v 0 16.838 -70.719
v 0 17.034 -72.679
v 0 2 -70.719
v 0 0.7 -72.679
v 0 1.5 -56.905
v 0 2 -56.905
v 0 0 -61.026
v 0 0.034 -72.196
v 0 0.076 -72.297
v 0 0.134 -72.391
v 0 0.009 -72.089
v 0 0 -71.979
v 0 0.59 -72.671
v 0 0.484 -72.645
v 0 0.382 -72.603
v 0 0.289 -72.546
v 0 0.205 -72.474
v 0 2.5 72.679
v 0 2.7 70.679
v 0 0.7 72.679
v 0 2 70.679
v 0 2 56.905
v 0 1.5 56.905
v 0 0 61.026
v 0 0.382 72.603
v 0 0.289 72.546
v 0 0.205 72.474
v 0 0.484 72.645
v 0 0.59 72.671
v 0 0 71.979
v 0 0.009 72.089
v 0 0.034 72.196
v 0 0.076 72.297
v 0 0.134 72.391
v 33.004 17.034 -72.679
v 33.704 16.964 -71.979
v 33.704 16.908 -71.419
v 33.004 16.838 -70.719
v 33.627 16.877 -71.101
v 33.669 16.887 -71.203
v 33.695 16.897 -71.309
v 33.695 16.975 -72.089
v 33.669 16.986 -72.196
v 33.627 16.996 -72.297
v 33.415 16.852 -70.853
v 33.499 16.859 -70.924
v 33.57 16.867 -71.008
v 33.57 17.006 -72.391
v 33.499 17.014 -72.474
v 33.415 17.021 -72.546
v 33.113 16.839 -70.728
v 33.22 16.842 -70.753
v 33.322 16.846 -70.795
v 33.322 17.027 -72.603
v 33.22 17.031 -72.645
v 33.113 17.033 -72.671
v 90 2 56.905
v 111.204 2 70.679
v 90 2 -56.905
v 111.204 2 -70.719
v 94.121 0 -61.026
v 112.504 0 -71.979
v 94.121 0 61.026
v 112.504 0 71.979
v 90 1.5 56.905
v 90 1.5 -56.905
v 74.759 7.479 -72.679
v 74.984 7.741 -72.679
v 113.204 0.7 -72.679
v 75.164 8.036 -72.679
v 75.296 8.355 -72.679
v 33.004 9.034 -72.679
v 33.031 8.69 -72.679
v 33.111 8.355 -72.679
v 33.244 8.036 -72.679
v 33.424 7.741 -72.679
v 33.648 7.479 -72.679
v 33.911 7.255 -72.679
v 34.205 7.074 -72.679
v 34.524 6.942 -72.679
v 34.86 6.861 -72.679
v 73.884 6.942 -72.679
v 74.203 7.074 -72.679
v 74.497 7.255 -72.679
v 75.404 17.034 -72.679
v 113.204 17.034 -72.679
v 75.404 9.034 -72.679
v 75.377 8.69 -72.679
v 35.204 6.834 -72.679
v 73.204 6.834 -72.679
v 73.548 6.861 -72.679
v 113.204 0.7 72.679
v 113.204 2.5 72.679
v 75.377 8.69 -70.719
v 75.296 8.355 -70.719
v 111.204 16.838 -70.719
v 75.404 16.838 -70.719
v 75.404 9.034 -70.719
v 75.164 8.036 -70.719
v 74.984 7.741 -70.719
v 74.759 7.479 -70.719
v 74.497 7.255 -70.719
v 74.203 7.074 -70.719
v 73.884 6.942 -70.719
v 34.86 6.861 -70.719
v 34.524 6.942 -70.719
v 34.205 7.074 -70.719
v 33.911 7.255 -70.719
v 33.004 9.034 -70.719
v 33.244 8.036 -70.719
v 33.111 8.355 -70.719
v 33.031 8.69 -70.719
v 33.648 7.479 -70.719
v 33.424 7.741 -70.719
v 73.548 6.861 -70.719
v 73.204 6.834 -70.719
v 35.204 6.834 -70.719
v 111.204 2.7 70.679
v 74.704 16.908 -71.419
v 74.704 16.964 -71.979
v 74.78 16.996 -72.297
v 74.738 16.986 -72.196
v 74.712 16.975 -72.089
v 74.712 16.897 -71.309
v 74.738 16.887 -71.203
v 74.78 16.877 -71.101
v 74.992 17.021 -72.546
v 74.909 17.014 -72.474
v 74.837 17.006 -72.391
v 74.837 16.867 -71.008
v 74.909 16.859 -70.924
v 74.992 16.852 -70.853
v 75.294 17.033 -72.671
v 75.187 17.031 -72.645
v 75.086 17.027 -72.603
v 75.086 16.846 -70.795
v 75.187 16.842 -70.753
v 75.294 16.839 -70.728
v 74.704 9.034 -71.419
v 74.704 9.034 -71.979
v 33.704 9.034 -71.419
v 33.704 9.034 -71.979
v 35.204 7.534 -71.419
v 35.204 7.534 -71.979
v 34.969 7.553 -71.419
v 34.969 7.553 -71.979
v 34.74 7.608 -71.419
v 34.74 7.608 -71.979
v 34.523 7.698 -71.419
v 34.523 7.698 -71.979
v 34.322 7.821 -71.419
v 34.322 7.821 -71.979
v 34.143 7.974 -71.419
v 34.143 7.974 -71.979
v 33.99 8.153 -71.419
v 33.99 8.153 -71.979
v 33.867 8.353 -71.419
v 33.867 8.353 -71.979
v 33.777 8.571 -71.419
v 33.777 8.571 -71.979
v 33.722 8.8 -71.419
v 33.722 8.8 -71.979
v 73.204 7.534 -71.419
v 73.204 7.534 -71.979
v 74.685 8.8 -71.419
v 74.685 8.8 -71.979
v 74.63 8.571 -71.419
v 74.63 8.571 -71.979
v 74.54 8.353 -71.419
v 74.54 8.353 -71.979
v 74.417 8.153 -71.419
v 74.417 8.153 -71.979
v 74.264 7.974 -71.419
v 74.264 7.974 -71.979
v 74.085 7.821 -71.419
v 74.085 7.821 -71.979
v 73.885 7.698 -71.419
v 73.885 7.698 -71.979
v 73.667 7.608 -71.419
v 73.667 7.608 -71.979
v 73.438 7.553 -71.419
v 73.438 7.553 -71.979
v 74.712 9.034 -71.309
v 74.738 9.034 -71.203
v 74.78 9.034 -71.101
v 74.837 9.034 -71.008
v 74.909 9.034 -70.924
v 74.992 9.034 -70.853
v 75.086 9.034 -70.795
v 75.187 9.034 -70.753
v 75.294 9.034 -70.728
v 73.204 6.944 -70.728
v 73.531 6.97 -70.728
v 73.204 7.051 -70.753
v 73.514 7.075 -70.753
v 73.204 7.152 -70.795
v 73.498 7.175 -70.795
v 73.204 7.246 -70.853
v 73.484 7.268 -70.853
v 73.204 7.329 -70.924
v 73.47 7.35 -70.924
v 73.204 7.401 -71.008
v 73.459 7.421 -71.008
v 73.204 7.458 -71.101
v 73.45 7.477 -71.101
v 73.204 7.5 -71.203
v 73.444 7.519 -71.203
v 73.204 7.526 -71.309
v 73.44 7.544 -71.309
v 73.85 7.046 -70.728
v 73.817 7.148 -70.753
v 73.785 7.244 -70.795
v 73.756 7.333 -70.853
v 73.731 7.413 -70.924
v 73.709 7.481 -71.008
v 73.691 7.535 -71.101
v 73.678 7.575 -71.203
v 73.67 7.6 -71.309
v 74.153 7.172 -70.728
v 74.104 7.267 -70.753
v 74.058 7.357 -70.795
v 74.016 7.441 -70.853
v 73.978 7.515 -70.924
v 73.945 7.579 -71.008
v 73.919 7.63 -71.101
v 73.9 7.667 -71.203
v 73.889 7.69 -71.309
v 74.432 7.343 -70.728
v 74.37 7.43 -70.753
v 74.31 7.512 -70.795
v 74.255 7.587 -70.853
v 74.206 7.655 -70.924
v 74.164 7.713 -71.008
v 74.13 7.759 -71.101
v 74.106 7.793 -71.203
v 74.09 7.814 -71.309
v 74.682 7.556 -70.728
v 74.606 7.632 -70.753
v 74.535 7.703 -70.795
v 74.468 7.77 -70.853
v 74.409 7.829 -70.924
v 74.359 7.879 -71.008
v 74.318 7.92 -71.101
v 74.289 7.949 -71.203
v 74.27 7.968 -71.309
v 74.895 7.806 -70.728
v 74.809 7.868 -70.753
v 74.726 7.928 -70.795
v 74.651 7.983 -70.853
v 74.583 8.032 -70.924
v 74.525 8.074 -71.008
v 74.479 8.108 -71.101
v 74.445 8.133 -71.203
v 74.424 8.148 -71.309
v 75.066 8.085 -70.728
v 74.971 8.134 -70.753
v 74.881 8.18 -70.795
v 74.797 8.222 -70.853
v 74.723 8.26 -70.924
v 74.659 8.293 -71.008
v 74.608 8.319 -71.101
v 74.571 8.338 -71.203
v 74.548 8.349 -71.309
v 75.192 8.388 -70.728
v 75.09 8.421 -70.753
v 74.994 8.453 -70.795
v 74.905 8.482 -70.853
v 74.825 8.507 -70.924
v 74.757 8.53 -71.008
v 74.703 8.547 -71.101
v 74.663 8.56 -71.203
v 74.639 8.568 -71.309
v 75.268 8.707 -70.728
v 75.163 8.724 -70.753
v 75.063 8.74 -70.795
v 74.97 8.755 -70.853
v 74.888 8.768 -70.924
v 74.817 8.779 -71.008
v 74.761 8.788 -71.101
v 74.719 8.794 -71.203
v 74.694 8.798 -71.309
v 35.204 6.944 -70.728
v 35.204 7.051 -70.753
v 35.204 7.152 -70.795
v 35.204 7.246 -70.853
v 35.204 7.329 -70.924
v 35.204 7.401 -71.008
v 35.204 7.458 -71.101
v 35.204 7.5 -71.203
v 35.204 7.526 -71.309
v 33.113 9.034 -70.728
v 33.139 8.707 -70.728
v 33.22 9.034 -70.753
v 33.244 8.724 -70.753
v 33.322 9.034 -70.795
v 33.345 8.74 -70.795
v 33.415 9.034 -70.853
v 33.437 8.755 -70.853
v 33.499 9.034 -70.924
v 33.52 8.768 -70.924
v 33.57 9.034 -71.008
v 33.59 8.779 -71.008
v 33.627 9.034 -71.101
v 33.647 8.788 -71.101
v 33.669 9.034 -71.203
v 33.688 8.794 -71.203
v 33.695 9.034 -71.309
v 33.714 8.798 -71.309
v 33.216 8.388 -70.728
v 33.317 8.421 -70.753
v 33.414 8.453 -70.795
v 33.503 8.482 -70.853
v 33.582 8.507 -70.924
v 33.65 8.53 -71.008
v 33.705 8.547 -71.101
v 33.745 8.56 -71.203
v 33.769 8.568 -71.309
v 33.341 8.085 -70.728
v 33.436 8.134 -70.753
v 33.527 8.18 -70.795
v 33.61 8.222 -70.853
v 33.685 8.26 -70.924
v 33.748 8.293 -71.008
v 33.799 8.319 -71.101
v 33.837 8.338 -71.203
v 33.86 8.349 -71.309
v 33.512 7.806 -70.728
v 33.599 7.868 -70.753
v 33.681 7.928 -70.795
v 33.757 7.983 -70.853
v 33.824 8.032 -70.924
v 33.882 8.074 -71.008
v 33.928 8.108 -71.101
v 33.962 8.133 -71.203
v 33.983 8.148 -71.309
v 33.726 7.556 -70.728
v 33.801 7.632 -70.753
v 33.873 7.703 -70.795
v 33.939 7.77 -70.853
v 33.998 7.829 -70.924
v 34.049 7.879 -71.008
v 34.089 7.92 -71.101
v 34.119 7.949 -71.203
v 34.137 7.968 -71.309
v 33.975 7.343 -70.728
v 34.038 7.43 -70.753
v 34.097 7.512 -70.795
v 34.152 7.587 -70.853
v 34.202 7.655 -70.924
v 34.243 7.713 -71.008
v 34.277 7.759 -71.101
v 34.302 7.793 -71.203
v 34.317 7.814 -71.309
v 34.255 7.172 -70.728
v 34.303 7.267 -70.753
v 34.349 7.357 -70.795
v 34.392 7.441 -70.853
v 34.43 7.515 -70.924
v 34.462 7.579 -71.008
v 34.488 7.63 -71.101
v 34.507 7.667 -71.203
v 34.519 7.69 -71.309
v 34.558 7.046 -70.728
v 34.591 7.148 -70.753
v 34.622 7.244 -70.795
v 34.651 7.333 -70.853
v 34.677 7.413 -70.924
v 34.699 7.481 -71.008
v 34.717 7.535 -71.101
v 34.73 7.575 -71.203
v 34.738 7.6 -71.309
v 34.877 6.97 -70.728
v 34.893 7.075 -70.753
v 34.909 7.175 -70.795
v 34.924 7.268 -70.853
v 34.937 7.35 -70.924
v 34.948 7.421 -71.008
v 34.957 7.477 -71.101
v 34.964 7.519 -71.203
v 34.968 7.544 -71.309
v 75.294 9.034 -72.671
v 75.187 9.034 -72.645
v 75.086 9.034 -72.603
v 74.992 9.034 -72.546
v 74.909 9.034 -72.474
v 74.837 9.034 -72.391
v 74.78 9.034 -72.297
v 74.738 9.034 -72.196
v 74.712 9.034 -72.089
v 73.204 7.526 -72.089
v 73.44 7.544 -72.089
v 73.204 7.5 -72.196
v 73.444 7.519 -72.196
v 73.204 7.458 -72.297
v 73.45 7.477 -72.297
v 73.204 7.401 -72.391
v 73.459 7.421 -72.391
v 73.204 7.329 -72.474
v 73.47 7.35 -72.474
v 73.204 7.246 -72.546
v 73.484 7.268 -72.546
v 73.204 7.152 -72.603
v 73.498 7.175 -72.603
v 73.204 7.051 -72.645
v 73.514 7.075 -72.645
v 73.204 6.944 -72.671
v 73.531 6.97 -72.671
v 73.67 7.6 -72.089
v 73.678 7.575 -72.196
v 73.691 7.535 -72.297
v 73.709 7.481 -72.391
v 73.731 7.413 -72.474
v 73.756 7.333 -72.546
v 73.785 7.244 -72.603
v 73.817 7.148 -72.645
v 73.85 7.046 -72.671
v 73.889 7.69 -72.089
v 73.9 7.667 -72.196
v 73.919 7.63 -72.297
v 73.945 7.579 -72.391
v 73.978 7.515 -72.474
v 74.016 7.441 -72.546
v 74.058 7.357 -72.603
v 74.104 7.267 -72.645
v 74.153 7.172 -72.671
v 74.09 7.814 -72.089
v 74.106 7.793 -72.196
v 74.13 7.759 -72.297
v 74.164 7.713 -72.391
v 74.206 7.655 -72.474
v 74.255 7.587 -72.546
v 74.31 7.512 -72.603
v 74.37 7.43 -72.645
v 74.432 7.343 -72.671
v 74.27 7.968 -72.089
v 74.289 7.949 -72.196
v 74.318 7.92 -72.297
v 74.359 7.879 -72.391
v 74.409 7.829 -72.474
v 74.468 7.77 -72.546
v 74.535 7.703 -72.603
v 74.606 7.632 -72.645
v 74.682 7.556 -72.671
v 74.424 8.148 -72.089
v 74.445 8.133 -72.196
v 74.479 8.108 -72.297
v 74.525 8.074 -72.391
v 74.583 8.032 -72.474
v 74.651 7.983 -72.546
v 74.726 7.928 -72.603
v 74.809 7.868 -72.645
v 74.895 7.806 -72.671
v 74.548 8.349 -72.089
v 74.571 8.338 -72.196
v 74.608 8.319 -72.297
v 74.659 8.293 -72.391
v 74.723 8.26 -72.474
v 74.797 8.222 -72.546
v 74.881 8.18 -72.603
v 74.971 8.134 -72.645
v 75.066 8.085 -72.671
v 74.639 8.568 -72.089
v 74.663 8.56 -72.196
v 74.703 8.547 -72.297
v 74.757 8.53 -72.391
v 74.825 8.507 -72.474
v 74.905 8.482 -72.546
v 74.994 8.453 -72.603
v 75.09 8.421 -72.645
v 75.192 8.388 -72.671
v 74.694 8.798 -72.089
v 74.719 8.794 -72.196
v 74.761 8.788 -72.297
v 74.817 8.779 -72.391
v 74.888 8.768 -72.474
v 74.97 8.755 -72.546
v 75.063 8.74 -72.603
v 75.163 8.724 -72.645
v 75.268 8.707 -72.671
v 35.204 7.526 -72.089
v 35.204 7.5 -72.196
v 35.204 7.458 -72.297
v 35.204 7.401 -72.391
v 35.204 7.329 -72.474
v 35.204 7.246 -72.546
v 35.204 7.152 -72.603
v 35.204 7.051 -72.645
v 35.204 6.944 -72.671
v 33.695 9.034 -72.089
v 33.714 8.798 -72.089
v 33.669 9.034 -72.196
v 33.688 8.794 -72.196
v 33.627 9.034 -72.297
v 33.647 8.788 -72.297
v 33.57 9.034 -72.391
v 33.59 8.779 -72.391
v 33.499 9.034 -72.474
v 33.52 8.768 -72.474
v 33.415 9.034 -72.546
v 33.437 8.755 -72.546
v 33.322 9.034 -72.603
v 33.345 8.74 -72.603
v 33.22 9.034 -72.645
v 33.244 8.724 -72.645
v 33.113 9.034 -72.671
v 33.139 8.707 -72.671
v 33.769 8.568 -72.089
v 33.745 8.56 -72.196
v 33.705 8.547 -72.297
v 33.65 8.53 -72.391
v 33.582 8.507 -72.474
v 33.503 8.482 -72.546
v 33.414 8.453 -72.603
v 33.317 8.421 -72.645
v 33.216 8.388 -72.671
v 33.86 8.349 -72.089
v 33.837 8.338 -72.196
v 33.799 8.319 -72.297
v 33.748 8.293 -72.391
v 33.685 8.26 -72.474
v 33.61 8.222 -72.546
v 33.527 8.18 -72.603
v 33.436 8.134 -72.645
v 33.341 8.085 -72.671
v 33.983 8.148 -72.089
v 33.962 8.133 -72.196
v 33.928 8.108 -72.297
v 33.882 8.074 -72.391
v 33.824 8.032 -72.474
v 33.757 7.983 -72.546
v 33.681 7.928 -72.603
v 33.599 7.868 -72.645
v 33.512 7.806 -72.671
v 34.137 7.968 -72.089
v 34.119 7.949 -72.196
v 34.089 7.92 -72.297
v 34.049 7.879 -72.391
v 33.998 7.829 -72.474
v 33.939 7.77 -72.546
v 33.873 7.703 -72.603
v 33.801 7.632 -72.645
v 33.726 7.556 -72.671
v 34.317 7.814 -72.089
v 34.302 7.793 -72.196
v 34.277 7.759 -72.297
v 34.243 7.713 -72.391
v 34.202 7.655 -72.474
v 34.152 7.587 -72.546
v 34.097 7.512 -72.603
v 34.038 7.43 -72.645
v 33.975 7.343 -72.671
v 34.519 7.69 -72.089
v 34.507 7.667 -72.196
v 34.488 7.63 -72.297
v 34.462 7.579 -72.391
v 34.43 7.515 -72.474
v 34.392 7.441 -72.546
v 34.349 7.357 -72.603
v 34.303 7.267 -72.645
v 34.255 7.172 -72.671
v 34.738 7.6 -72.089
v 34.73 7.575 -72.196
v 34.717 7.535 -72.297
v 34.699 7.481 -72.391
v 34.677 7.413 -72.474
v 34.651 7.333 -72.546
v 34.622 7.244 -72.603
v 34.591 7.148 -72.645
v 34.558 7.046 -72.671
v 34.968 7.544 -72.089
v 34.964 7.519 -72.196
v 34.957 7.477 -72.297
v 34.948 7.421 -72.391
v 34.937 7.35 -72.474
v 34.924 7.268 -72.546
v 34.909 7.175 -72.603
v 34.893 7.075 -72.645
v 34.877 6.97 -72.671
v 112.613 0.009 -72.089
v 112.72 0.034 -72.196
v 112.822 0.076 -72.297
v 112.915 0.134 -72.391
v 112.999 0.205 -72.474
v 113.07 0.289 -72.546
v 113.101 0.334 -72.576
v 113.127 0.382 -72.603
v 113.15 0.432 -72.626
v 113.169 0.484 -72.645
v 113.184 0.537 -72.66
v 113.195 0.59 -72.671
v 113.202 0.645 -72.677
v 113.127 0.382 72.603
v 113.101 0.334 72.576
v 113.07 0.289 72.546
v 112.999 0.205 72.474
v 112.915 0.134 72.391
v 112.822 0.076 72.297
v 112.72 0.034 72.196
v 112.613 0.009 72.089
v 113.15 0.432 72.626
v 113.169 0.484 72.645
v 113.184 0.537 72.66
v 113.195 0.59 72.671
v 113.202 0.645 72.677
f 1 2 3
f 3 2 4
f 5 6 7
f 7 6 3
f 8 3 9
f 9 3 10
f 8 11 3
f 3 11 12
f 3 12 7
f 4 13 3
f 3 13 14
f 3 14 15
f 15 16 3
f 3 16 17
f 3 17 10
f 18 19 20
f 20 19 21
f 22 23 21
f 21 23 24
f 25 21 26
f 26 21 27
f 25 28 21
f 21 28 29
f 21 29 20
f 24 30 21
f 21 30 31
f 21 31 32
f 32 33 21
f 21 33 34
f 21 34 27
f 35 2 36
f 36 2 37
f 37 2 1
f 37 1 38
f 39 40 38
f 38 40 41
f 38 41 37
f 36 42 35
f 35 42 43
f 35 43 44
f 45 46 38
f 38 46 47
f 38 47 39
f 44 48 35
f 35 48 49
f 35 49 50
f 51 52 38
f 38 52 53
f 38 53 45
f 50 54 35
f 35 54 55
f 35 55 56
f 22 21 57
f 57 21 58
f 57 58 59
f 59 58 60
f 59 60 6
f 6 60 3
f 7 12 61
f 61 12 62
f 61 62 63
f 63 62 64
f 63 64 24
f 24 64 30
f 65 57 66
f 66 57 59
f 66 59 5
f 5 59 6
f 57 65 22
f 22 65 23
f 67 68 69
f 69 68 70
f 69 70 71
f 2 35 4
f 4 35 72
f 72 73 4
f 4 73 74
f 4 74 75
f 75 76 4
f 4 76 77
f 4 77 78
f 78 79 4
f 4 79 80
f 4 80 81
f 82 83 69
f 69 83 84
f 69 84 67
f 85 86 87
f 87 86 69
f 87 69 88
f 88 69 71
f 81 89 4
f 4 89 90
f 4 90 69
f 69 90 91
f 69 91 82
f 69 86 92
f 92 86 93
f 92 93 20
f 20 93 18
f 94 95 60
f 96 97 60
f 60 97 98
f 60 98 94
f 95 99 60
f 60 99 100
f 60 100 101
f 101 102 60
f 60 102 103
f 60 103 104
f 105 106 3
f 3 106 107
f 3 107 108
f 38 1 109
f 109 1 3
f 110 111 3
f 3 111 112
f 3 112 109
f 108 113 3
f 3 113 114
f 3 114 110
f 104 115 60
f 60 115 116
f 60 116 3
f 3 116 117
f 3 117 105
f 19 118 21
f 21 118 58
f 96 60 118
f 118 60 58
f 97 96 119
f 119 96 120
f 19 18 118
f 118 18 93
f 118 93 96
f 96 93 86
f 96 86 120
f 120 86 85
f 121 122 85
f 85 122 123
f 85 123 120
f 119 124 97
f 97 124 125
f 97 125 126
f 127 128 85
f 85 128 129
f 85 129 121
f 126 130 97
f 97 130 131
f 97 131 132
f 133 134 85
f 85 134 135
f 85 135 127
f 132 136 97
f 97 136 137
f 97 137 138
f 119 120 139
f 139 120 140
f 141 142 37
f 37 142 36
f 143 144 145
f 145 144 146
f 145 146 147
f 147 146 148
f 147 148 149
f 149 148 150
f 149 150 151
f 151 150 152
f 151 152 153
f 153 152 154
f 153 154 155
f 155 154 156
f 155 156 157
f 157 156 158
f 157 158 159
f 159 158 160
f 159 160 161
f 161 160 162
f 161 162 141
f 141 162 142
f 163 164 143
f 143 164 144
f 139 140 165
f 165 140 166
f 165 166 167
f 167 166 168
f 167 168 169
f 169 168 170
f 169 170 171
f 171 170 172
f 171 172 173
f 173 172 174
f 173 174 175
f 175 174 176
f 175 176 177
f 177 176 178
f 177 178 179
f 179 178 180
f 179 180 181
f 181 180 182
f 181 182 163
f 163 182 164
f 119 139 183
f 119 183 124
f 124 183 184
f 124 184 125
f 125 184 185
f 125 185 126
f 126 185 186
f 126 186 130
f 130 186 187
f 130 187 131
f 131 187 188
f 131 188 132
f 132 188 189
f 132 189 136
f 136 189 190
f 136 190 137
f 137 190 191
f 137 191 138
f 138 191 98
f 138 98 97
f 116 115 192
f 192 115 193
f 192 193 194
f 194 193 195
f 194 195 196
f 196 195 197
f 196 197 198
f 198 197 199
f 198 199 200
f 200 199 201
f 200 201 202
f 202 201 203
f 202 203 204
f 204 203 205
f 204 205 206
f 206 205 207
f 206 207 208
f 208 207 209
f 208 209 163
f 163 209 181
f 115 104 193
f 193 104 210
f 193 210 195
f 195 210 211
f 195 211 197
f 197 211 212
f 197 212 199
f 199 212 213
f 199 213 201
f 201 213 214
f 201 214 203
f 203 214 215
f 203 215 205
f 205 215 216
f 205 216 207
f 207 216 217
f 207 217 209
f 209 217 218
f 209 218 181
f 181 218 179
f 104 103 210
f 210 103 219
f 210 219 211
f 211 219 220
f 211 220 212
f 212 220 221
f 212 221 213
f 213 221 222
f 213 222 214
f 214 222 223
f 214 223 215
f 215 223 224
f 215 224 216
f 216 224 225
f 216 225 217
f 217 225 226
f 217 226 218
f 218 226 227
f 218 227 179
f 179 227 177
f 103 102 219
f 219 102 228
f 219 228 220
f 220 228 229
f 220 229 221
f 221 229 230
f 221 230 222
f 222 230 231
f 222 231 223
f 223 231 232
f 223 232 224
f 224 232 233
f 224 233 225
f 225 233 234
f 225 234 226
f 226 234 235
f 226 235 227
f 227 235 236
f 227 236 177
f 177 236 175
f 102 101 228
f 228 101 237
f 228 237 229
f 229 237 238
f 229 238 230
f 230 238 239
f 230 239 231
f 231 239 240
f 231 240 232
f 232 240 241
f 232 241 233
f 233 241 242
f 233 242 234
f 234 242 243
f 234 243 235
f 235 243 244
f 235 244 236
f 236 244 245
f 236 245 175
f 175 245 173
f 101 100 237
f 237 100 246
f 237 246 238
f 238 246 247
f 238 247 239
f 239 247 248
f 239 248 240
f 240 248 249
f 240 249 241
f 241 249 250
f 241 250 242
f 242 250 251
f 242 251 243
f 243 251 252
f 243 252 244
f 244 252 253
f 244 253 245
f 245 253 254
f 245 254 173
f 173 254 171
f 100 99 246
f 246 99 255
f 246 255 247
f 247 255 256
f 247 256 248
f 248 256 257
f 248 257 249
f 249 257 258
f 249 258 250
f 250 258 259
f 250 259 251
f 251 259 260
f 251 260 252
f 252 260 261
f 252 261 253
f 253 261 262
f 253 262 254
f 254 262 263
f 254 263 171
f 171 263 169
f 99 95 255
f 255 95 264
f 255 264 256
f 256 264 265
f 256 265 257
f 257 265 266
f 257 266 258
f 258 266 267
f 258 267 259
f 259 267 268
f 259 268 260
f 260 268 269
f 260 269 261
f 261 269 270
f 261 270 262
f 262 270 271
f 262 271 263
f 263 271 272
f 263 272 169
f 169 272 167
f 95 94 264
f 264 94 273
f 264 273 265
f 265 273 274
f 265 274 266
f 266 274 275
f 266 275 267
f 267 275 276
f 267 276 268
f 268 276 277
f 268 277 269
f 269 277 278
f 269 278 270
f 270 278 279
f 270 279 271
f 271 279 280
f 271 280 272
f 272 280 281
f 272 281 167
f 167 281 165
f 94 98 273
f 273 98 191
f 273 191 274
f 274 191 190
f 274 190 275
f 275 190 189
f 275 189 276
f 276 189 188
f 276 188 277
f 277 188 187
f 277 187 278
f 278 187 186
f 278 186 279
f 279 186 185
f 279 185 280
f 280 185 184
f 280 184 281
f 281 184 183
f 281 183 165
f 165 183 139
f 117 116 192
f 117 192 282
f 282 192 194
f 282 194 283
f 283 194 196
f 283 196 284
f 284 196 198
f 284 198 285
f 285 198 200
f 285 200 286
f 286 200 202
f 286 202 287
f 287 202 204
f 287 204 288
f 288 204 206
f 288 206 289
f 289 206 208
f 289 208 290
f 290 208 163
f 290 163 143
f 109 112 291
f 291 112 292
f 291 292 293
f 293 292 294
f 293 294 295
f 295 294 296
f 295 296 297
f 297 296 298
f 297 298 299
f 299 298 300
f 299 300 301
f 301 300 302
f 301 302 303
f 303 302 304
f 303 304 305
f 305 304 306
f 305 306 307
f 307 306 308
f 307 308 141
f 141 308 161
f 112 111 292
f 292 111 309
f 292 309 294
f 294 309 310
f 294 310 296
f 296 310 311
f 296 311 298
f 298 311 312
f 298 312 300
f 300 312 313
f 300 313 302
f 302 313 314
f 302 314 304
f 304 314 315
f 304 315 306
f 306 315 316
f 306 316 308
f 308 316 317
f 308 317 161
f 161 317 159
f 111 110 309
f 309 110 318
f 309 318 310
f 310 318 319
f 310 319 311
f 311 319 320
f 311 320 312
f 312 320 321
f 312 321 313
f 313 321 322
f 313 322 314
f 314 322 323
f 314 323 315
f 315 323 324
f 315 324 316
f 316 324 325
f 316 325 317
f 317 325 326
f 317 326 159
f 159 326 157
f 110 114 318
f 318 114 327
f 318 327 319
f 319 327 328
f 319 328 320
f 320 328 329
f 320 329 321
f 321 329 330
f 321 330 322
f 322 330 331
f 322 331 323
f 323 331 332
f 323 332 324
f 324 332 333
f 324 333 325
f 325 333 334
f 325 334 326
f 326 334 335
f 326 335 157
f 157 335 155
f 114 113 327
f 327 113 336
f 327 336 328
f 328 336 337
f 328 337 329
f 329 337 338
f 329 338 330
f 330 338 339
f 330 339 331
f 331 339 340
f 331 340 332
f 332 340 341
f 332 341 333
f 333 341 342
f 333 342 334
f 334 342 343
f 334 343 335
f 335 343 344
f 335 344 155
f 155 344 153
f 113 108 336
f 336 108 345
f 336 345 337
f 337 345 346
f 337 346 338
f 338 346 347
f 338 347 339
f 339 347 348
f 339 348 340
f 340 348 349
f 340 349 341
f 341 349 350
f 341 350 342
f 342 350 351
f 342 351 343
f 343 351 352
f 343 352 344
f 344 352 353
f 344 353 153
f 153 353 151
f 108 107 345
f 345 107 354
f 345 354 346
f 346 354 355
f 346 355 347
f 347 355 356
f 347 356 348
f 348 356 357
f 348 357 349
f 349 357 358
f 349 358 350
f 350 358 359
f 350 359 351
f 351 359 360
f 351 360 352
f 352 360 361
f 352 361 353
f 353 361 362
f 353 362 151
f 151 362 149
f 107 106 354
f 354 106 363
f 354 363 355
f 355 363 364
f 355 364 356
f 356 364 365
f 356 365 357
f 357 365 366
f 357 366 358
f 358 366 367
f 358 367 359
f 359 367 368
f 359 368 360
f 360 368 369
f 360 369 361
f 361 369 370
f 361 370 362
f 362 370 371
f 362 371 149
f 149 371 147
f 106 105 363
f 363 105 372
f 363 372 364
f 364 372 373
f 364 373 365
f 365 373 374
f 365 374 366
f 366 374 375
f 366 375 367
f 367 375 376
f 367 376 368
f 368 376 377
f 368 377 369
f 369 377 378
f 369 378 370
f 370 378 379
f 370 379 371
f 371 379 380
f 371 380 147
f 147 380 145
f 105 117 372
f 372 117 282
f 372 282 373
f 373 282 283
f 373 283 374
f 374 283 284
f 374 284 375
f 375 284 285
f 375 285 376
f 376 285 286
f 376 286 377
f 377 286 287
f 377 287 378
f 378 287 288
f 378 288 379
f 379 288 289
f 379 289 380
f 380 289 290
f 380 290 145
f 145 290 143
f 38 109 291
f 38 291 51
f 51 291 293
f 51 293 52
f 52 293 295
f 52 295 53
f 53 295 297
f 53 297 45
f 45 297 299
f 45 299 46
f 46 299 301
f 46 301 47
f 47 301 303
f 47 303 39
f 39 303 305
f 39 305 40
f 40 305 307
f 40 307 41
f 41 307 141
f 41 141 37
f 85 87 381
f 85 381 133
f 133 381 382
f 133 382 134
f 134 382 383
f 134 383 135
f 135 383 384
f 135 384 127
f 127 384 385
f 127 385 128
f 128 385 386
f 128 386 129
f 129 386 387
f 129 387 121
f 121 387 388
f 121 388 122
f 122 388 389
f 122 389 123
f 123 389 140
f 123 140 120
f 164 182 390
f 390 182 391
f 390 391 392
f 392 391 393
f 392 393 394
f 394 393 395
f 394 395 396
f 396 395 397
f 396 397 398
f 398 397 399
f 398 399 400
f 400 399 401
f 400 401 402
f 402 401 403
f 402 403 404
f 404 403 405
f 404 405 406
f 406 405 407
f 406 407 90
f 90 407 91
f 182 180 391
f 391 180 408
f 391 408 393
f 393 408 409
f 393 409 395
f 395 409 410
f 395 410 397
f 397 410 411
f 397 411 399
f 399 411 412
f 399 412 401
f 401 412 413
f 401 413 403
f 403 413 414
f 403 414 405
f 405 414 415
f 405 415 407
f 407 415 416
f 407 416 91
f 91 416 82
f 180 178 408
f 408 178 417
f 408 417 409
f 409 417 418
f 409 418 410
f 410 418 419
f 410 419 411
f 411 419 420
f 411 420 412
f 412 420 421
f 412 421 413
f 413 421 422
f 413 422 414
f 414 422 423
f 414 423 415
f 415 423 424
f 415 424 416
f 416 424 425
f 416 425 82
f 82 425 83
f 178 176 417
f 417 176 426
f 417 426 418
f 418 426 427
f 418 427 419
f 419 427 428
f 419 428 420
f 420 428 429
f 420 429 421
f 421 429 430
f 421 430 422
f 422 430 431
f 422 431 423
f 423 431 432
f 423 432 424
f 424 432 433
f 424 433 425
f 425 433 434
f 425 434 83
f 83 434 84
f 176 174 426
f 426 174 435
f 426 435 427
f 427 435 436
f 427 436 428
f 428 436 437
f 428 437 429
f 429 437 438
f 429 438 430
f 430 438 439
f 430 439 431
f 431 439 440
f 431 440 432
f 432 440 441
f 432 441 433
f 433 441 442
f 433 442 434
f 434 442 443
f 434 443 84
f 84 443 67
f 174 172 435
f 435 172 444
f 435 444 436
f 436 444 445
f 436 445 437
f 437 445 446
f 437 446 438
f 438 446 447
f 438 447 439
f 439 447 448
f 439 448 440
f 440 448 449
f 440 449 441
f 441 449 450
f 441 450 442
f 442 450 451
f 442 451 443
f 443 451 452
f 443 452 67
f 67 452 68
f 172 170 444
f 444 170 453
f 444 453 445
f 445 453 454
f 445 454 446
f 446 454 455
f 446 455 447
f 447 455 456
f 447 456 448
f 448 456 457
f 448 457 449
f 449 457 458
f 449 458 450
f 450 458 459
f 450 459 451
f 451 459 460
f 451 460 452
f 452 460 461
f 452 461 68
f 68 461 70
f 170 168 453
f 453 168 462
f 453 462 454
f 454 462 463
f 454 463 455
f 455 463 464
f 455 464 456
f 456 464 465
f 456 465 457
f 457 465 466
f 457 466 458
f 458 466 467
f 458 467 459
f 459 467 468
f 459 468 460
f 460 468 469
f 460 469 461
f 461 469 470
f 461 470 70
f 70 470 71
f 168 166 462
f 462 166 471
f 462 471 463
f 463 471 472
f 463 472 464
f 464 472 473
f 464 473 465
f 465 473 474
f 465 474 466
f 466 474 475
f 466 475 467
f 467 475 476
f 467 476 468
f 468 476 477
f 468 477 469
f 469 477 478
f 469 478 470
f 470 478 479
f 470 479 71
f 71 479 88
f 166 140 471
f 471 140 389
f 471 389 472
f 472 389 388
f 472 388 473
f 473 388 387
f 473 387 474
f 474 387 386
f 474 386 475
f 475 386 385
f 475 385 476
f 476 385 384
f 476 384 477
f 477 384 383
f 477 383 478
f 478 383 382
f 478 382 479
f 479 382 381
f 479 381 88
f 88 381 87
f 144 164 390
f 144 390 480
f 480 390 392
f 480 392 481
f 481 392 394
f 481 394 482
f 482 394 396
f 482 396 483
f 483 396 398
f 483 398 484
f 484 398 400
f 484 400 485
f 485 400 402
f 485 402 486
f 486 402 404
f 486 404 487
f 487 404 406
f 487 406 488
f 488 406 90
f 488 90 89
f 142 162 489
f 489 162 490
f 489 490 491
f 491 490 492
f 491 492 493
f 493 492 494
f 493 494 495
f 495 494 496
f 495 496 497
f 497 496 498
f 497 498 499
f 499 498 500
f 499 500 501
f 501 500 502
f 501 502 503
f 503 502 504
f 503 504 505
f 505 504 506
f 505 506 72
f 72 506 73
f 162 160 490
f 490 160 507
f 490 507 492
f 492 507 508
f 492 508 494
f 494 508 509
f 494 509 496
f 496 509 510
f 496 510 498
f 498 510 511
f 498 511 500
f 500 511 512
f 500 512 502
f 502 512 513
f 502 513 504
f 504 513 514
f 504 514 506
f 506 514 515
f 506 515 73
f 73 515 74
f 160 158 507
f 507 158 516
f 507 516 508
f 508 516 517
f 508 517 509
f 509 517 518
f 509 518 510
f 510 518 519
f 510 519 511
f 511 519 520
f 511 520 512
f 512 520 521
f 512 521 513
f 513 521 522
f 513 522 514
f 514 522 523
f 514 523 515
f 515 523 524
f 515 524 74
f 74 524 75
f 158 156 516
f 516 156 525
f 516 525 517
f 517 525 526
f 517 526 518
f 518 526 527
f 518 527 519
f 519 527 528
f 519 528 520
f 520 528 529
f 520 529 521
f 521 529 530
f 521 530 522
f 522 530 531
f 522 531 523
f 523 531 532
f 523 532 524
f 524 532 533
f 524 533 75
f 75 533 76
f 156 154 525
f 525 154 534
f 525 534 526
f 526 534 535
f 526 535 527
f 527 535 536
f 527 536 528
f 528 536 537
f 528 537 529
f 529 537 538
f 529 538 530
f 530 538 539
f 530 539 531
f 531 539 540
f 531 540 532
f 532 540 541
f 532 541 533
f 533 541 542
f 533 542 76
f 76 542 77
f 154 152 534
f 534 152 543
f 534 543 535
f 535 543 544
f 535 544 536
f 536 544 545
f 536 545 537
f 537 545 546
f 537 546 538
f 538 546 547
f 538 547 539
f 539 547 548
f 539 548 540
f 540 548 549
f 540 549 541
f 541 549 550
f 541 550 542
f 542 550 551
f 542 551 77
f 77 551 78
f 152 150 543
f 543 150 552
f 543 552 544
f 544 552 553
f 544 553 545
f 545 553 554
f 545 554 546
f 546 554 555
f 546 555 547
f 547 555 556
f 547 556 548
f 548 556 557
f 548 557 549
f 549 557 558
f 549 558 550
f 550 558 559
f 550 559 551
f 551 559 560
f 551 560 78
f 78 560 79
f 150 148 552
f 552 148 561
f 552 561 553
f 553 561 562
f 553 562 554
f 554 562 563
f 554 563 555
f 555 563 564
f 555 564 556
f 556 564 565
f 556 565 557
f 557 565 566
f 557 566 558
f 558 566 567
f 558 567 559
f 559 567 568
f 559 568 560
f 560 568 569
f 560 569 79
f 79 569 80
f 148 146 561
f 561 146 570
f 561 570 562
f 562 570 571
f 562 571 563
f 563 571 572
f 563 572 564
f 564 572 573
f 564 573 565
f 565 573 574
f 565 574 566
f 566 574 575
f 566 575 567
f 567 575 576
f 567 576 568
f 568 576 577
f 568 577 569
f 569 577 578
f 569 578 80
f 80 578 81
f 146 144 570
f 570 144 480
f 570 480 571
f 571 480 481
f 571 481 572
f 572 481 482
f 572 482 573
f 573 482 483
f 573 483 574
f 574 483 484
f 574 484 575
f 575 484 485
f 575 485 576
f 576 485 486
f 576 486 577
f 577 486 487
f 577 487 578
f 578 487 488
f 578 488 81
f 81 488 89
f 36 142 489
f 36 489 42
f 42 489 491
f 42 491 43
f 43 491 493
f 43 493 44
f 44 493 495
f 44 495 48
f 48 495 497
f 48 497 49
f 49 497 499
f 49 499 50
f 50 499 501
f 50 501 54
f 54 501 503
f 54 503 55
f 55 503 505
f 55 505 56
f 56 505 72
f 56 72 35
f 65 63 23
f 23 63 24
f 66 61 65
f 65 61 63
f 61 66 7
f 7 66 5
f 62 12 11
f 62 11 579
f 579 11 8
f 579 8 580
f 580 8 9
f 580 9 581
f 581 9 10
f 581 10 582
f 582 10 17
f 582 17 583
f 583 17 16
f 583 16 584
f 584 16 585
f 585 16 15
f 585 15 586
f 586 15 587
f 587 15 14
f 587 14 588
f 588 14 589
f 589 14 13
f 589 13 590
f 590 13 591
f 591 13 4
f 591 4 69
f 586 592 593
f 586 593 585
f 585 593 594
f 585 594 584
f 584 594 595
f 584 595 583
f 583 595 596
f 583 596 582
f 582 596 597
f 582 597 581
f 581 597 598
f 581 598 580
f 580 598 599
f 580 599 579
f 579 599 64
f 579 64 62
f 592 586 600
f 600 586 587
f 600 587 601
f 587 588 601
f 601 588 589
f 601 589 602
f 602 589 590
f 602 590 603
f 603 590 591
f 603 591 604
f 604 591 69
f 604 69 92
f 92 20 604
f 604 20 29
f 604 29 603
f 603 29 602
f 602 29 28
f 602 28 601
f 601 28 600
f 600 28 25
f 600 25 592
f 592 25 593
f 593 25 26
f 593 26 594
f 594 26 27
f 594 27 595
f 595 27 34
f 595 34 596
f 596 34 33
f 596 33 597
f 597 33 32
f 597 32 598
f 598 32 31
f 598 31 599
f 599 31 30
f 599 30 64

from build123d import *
from OCP.BRepFilletAPI import BRepFilletAPI_MakeChamfer

# Parameters (mm, degrees)
CROQUIS1_W                 = 220.407444928
CROQUIS1_H                 = 139.358729484
CROQUIS1_W_2               = 180
CROQUIS1_H_2               = 113.81
SALIENTE_EXTRUIR1_DEPTH    = 2
EXTRUIR_L_MINA3_DEPTH      = 16.5
EXTRUIR_L_MINA3_DEPTH_BACK = 2
CROQUIS2_W                 = 226.407444928
CROQUIS2_H                 = 145.358729484
CROQUIS2_W_2               = 220.407444928
CROQUIS2_H_2               = 139.358729484
CROQUIS6_W                 = 222.447038553
CROQUIS6_H                 = 141.398323109
CORTAR_EXTRUIR2_DEPTH      = 16.5
CORTAR_EXTRUIR3_REACH      = 240.505
CORTAR_EXTRUIR4_DEPTH      = 1.960406375
REDONDEO2_R                = 0.7
CHAFL_N1_SIZE              = 1.5
CHAFL_N1_SIZE2             = 4.121216129
REDONDEO3_R                = 0.7


with BuildPart() as part:
    # Croquis1 → Saliente-Extruir1 (new body)
    with BuildSketch(Plane(origin=(0, 0, 0), x_dir=(1, 0, 0), z_dir=(0, 1, 0))):
        Rectangle(CROQUIS1_W, CROQUIS1_H)
        Rectangle(CROQUIS1_W_2, CROQUIS1_H_2, mode=Mode.SUBTRACT)
    extrude(amount=SALIENTE_EXTRUIR1_DEPTH)

    # Croquis2 → Extruir-Lámina3 (add, two sides: drawn at the far end of the back side and taken through both)
    with BuildSketch(Plane(origin=(0, 2, 0), x_dir=(1, 0, 0), z_dir=(0, 1, 0)).offset(-EXTRUIR_L_MINA3_DEPTH_BACK)):
        Rectangle(CROQUIS2_W, CROQUIS2_H)
        Rectangle(CROQUIS2_W_2, CROQUIS2_H_2, mode=Mode.SUBTRACT)
    extrude(amount=EXTRUIR_L_MINA3_DEPTH + EXTRUIR_L_MINA3_DEPTH_BACK)

    # Croquis6 → Cortar-Extruir2 (cut)
    with BuildSketch(Plane(origin=(0, 18.5, 0), x_dir=(1, 0, 0), z_dir=(0, 1, 0))):
        with Locations((-0.019796812, 0.019796812)):
            Rectangle(CROQUIS6_W, CROQUIS6_H)
    extrude(amount=-CORTAR_EXTRUIR2_DEPTH, mode=Mode.SUBTRACT)

    # Cortar-Extruir3: up to this face of the body (flat: up to its plane)
    cortar_extruir3_end = Plane(part.part.faces().sort_by_distance((113.203722464, 9.25, 0))[0])
    # Croquis7 → Cortar-Extruir3 (cut, up to the picked face)
    with BuildSketch(Plane.ZY.offset(113.203722464), mode=Mode.PRIVATE) as cortar_extruir3_sk1:
        Polygon((-72.679364742, 18.5), (-72.679364742, 17.034353119), (72.679364742, 2.5), (72.679364742, 18.5), align=None)
    cortar_extruir3_tool1 = split(extrude(cortar_extruir3_sk1.sketch, amount=-CORTAR_EXTRUIR3_REACH, mode=Mode.PRIVATE), bisect_by=cortar_extruir3_end, keep=Keep.BOTH, mode=Mode.PRIVATE)
    add(cortar_extruir3_tool1.solids().sort_by(Axis((-113.203722, 13.12567, 20.160481), (1, 0, 0)))[0], mode=Mode.SUBTRACT)

    # Croquis8 → Cortar-Extruir4 (cut)
    with BuildSketch(Plane(origin=(0, 0, -72.679364742), x_dir=(-1, 0, 0), z_dir=(0, 0, -1))):
        with BuildLine():
            Line((-33.703722464, 17.034353119), (-74.703722464, 17.034353119))
            Line((-74.703722464, 17.034353119), (-74.703722464, 9.034353119))
            ThreePointArc((-74.703722464, 9.034353119), (-74.264382636, 7.973692947), (-73.203722464, 7.534353119))
            Line((-73.203722464, 7.534353119), (-35.203722464, 7.534353119))
            ThreePointArc((-35.203722464, 7.534353119), (-34.143062292, 7.973692947), (-33.703722464, 9.034353119))
            Line((-33.703722464, 9.034353119), (-33.703722464, 17.034353119))
        make_face()
    extrude(amount=-CORTAR_EXTRUIR4_DEPTH, mode=Mode.SUBTRACT)

    # Redondeo2
    redondeo2_edges = [part.edges().sort_by_distance(p)[0] for p in [
        (33.703722464, 12.936343049, -70.718958367),
        (34.143062292, 7.973692947, -70.718958367),
        (54.203722464, 7.534353119, -70.718958367),
        (74.264382636, 7.973692947, -70.718958367),
        (74.703722464, 12.936343049, -70.718958367),
        (74.703722464, 13.034353119, -72.679364742),
        (74.264382636, 7.973692947, -72.679364742),
        (54.203722464, 7.534353119, -72.679364742),
        (34.143062292, 7.973692947, -72.679364742),
        (33.703722464, 13.034353119, -72.679364742),
    ]]
    fillet(redondeo2_edges, radius=REDONDEO2_R)

    # Chaflán1: one chamfer whose edges measure the first distance from different faces: ONE call of the kernel's chamfer builder (chamfer() names one face for all edges)
    chafl_n1_edges_1 = [part.edges().sort_by_distance(p)[0] for p in [
        (90, 0, 0),
    ]]
    chafl_n1_side_1 = [part.faces().sort_by_distance(p)[0] for p in [
        (90, 1, 0),
    ]]
    chafl_n1_edges_2 = [part.edges().sort_by_distance(p)[0] for p in [
        (0, 0, -56.905),
    ]]
    chafl_n1_side_2 = [part.faces().sort_by_distance(p)[0] for p in [
        (0, 1, -56.905),
    ]]
    chafl_n1_edges_3 = [part.edges().sort_by_distance(p)[0] for p in [
        (-90, 0, 0),
    ]]
    chafl_n1_side_3 = [part.faces().sort_by_distance(p)[0] for p in [
        (-90, 1, 0),
    ]]
    chafl_n1_edges_4 = [part.edges().sort_by_distance(p)[0] for p in [
        (0, 0, 56.905),
    ]]
    chafl_n1_side_4 = [part.faces().sort_by_distance(p)[0] for p in [
        (0, 1, 56.905),
    ]]
    chafl_n1 = BRepFilletAPI_MakeChamfer(part.part.solid().wrapped)
    for e in chafl_n1_edges_1:
        chafl_n1.Add(CHAFL_N1_SIZE, CHAFL_N1_SIZE2, e.wrapped, chafl_n1_side_1[0].wrapped)  # the first distance lies on this face
    for e in chafl_n1_edges_2:
        chafl_n1.Add(CHAFL_N1_SIZE, CHAFL_N1_SIZE2, e.wrapped, chafl_n1_side_2[0].wrapped)  # the first distance lies on this face
    for e in chafl_n1_edges_3:
        chafl_n1.Add(CHAFL_N1_SIZE, CHAFL_N1_SIZE2, e.wrapped, chafl_n1_side_3[0].wrapped)  # the first distance lies on this face
    for e in chafl_n1_edges_4:
        chafl_n1.Add(CHAFL_N1_SIZE, CHAFL_N1_SIZE2, e.wrapped, chafl_n1_side_4[0].wrapped)  # the first distance lies on this face
    add(Compound.cast(chafl_n1.Shape()), mode=Mode.REPLACE)

    # Redondeo3
    redondeo3_edges = [part.edges().sort_by_distance(p)[0] for p in [
        (-113.203722464, 0, 0),
        (0, 0, -72.679364742),
        (113.203722464, 0, 0),
        (0, 0, 72.679364742),
    ]]
    fillet(redondeo3_edges, radius=REDONDEO3_R)

    # Partir2
    split(bisect_by=Plane(origin=(0, 0, 0), x_dir=(0, 0, 1), z_dir=(1, 0, 0)), keep=Keep.TOP)


solid = part.part
